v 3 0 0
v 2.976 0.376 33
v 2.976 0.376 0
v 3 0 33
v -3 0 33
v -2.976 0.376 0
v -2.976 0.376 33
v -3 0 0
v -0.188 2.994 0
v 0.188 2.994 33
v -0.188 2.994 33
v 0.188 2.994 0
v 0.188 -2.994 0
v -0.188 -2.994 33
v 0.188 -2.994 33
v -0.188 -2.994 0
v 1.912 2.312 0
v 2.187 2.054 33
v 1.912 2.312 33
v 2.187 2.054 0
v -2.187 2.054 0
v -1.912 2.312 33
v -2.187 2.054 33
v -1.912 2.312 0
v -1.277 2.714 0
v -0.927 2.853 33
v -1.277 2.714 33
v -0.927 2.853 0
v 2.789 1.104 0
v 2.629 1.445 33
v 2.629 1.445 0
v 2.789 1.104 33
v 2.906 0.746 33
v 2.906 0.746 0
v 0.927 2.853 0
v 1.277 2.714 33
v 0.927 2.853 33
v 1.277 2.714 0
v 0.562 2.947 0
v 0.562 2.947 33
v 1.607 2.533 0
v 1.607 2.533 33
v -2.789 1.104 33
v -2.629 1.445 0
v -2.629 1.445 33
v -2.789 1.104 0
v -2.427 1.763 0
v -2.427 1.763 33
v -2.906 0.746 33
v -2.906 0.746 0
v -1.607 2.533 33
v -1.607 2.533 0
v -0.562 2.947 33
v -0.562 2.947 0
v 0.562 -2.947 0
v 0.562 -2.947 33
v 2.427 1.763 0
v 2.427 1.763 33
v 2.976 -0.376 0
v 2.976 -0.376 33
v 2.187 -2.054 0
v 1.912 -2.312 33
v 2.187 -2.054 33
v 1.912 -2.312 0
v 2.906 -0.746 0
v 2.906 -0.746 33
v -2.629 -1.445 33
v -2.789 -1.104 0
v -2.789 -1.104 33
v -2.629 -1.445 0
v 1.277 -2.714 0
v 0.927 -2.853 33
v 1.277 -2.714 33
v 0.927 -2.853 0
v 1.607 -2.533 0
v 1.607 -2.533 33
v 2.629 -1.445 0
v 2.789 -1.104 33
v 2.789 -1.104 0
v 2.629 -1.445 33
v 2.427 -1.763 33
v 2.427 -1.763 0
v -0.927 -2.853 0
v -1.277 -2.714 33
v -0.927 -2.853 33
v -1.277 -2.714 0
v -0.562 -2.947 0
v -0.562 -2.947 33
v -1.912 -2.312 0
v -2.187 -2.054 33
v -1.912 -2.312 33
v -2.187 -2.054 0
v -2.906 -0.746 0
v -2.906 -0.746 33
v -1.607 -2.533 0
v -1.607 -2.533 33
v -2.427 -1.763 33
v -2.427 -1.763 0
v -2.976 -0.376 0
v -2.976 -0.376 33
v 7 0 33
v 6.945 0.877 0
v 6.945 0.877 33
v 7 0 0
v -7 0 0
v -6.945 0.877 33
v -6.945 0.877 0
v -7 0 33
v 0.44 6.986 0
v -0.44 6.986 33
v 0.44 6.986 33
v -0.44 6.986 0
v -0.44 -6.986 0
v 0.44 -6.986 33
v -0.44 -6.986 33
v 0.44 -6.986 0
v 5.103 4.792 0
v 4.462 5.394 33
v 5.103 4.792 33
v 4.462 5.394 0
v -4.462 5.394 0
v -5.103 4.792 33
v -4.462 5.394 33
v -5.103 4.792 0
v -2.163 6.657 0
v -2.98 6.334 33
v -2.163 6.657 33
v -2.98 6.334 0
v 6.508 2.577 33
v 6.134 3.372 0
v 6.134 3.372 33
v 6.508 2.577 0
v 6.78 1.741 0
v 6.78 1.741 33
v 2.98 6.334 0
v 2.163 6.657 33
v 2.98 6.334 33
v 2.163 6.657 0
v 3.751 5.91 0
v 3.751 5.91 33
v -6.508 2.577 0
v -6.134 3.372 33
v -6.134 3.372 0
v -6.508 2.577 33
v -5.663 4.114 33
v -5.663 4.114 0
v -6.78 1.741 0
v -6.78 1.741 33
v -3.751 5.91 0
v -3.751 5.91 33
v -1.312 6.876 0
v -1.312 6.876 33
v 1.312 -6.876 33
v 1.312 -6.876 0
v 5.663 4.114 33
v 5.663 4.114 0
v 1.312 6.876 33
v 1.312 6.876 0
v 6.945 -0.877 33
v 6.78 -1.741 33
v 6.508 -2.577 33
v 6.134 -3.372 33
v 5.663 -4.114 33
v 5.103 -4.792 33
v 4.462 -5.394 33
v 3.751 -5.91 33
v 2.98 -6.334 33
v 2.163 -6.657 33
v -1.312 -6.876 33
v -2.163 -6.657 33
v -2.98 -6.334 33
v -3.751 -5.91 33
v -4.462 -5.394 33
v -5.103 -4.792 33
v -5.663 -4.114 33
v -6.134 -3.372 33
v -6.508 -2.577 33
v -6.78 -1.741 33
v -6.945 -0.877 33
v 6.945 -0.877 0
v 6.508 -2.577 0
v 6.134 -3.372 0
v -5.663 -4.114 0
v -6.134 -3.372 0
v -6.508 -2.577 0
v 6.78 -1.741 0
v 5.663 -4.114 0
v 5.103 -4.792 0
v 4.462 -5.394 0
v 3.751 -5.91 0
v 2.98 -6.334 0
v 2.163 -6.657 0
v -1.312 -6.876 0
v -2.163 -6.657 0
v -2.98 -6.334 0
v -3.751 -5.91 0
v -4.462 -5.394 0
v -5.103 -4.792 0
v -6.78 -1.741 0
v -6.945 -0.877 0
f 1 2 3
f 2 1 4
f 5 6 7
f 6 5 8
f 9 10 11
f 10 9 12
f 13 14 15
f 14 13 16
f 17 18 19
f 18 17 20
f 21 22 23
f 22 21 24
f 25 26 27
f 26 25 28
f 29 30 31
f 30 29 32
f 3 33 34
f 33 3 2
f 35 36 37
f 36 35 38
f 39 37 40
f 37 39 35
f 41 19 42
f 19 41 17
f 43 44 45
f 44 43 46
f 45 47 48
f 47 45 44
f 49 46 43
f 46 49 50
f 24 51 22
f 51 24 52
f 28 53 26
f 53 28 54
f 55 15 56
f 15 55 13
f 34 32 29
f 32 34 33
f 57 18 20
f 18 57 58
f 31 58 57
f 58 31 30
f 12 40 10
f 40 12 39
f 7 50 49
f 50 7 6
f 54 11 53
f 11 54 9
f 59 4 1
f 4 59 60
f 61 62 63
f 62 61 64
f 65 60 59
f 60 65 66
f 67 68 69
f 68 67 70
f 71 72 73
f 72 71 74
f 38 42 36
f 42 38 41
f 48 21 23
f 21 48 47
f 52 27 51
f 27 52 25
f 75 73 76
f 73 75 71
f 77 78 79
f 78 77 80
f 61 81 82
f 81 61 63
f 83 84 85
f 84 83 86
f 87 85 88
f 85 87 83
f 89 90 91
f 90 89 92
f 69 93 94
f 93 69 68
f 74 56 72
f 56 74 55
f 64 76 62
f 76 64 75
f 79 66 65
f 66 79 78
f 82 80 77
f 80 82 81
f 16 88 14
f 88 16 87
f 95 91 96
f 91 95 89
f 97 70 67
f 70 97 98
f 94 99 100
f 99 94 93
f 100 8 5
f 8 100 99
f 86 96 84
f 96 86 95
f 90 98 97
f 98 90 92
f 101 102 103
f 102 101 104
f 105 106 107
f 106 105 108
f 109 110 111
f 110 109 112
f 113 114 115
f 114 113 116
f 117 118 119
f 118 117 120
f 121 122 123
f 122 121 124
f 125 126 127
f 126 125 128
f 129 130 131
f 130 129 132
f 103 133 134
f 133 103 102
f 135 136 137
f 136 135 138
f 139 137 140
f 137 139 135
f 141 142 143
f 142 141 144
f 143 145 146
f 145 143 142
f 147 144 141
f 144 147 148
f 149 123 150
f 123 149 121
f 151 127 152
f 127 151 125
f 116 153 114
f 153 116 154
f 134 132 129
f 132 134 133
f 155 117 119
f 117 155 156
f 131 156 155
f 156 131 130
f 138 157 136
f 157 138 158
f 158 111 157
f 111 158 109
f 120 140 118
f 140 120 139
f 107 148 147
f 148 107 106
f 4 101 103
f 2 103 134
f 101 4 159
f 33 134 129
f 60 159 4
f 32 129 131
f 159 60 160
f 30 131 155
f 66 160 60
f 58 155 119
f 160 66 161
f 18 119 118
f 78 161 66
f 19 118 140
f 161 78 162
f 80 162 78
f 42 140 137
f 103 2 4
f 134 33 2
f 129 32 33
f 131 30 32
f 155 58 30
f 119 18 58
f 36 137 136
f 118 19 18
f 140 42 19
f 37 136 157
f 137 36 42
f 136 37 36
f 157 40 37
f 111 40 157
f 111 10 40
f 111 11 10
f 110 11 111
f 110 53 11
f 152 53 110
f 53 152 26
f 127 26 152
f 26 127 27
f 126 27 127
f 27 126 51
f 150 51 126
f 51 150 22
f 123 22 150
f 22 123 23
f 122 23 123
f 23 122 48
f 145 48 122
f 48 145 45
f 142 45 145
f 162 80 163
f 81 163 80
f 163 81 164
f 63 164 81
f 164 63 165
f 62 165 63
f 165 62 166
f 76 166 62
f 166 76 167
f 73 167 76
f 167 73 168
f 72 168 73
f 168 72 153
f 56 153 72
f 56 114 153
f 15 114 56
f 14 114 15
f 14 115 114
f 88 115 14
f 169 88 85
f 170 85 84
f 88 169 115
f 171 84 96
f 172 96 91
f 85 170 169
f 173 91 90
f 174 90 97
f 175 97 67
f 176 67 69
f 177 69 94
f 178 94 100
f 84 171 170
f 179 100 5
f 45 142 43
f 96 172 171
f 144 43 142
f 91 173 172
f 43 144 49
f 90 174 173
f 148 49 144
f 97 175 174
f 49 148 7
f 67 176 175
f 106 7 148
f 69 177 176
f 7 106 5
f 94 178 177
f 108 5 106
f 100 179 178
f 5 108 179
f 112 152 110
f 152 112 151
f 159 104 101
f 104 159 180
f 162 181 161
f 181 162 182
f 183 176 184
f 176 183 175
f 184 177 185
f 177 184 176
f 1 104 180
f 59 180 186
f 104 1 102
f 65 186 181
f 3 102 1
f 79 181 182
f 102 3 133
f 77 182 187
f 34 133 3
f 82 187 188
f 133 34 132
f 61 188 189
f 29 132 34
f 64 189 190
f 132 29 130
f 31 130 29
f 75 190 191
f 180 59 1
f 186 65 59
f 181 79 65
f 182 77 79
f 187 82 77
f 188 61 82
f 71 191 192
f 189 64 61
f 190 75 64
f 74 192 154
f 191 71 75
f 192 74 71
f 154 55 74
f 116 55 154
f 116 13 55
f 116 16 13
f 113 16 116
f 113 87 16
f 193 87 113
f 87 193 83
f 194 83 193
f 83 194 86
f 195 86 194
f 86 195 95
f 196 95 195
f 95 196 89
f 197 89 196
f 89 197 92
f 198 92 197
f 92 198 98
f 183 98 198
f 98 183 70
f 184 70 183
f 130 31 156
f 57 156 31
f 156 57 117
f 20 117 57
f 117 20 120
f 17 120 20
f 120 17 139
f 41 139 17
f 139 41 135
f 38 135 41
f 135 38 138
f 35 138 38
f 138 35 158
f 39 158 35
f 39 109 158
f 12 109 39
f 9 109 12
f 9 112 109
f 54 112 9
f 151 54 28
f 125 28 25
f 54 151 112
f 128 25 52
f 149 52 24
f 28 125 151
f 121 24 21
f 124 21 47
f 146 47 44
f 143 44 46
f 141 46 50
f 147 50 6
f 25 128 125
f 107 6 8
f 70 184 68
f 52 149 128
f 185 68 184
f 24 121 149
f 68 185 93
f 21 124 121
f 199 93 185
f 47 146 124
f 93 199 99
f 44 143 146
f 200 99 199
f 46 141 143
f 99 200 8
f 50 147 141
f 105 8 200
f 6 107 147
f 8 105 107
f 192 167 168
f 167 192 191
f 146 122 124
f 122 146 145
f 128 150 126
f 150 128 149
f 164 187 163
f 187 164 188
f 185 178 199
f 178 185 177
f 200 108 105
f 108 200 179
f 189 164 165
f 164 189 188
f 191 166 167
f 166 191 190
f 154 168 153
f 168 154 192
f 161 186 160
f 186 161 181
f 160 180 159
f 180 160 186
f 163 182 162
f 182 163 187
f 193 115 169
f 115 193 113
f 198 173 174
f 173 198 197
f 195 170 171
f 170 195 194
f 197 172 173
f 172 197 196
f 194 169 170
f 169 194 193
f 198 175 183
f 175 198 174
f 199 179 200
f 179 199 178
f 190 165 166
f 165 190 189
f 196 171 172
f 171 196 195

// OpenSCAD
$fn = 50;


difference() {
	union() {
		*color(alpha = 1.0000000000, c = "gray") {
			translate(v = [0, 7, 0]) {
				linear_extrude(height = 1) {
					text(font = "Arial:style=Bold", halign = "center", size = 4.5000000000, text = "COMMENT plate main", valign = "center");
				}
			}
		}
		cylinder(h = 33, r = 7.0000000000);
	}
	union() {
		*color(alpha = 1.0000000000, c = "gray") {
			translate(v = [0, 7, 0]) {
				linear_extrude(height = 1) {
					text(font = "Arial:style=Bold", halign = "center", size = 4.5000000000, text = "COMMENT holes main", valign = "center");
				}
			}
		}
		translate(v = [0, 0, -100]) {
			cylinder(h = 200, r = 3.0000000000);
		}
		translate(v = [0, 0, -100]) {
			cylinder(h = 200, r = 1.5000000000);
		}
	}
}
